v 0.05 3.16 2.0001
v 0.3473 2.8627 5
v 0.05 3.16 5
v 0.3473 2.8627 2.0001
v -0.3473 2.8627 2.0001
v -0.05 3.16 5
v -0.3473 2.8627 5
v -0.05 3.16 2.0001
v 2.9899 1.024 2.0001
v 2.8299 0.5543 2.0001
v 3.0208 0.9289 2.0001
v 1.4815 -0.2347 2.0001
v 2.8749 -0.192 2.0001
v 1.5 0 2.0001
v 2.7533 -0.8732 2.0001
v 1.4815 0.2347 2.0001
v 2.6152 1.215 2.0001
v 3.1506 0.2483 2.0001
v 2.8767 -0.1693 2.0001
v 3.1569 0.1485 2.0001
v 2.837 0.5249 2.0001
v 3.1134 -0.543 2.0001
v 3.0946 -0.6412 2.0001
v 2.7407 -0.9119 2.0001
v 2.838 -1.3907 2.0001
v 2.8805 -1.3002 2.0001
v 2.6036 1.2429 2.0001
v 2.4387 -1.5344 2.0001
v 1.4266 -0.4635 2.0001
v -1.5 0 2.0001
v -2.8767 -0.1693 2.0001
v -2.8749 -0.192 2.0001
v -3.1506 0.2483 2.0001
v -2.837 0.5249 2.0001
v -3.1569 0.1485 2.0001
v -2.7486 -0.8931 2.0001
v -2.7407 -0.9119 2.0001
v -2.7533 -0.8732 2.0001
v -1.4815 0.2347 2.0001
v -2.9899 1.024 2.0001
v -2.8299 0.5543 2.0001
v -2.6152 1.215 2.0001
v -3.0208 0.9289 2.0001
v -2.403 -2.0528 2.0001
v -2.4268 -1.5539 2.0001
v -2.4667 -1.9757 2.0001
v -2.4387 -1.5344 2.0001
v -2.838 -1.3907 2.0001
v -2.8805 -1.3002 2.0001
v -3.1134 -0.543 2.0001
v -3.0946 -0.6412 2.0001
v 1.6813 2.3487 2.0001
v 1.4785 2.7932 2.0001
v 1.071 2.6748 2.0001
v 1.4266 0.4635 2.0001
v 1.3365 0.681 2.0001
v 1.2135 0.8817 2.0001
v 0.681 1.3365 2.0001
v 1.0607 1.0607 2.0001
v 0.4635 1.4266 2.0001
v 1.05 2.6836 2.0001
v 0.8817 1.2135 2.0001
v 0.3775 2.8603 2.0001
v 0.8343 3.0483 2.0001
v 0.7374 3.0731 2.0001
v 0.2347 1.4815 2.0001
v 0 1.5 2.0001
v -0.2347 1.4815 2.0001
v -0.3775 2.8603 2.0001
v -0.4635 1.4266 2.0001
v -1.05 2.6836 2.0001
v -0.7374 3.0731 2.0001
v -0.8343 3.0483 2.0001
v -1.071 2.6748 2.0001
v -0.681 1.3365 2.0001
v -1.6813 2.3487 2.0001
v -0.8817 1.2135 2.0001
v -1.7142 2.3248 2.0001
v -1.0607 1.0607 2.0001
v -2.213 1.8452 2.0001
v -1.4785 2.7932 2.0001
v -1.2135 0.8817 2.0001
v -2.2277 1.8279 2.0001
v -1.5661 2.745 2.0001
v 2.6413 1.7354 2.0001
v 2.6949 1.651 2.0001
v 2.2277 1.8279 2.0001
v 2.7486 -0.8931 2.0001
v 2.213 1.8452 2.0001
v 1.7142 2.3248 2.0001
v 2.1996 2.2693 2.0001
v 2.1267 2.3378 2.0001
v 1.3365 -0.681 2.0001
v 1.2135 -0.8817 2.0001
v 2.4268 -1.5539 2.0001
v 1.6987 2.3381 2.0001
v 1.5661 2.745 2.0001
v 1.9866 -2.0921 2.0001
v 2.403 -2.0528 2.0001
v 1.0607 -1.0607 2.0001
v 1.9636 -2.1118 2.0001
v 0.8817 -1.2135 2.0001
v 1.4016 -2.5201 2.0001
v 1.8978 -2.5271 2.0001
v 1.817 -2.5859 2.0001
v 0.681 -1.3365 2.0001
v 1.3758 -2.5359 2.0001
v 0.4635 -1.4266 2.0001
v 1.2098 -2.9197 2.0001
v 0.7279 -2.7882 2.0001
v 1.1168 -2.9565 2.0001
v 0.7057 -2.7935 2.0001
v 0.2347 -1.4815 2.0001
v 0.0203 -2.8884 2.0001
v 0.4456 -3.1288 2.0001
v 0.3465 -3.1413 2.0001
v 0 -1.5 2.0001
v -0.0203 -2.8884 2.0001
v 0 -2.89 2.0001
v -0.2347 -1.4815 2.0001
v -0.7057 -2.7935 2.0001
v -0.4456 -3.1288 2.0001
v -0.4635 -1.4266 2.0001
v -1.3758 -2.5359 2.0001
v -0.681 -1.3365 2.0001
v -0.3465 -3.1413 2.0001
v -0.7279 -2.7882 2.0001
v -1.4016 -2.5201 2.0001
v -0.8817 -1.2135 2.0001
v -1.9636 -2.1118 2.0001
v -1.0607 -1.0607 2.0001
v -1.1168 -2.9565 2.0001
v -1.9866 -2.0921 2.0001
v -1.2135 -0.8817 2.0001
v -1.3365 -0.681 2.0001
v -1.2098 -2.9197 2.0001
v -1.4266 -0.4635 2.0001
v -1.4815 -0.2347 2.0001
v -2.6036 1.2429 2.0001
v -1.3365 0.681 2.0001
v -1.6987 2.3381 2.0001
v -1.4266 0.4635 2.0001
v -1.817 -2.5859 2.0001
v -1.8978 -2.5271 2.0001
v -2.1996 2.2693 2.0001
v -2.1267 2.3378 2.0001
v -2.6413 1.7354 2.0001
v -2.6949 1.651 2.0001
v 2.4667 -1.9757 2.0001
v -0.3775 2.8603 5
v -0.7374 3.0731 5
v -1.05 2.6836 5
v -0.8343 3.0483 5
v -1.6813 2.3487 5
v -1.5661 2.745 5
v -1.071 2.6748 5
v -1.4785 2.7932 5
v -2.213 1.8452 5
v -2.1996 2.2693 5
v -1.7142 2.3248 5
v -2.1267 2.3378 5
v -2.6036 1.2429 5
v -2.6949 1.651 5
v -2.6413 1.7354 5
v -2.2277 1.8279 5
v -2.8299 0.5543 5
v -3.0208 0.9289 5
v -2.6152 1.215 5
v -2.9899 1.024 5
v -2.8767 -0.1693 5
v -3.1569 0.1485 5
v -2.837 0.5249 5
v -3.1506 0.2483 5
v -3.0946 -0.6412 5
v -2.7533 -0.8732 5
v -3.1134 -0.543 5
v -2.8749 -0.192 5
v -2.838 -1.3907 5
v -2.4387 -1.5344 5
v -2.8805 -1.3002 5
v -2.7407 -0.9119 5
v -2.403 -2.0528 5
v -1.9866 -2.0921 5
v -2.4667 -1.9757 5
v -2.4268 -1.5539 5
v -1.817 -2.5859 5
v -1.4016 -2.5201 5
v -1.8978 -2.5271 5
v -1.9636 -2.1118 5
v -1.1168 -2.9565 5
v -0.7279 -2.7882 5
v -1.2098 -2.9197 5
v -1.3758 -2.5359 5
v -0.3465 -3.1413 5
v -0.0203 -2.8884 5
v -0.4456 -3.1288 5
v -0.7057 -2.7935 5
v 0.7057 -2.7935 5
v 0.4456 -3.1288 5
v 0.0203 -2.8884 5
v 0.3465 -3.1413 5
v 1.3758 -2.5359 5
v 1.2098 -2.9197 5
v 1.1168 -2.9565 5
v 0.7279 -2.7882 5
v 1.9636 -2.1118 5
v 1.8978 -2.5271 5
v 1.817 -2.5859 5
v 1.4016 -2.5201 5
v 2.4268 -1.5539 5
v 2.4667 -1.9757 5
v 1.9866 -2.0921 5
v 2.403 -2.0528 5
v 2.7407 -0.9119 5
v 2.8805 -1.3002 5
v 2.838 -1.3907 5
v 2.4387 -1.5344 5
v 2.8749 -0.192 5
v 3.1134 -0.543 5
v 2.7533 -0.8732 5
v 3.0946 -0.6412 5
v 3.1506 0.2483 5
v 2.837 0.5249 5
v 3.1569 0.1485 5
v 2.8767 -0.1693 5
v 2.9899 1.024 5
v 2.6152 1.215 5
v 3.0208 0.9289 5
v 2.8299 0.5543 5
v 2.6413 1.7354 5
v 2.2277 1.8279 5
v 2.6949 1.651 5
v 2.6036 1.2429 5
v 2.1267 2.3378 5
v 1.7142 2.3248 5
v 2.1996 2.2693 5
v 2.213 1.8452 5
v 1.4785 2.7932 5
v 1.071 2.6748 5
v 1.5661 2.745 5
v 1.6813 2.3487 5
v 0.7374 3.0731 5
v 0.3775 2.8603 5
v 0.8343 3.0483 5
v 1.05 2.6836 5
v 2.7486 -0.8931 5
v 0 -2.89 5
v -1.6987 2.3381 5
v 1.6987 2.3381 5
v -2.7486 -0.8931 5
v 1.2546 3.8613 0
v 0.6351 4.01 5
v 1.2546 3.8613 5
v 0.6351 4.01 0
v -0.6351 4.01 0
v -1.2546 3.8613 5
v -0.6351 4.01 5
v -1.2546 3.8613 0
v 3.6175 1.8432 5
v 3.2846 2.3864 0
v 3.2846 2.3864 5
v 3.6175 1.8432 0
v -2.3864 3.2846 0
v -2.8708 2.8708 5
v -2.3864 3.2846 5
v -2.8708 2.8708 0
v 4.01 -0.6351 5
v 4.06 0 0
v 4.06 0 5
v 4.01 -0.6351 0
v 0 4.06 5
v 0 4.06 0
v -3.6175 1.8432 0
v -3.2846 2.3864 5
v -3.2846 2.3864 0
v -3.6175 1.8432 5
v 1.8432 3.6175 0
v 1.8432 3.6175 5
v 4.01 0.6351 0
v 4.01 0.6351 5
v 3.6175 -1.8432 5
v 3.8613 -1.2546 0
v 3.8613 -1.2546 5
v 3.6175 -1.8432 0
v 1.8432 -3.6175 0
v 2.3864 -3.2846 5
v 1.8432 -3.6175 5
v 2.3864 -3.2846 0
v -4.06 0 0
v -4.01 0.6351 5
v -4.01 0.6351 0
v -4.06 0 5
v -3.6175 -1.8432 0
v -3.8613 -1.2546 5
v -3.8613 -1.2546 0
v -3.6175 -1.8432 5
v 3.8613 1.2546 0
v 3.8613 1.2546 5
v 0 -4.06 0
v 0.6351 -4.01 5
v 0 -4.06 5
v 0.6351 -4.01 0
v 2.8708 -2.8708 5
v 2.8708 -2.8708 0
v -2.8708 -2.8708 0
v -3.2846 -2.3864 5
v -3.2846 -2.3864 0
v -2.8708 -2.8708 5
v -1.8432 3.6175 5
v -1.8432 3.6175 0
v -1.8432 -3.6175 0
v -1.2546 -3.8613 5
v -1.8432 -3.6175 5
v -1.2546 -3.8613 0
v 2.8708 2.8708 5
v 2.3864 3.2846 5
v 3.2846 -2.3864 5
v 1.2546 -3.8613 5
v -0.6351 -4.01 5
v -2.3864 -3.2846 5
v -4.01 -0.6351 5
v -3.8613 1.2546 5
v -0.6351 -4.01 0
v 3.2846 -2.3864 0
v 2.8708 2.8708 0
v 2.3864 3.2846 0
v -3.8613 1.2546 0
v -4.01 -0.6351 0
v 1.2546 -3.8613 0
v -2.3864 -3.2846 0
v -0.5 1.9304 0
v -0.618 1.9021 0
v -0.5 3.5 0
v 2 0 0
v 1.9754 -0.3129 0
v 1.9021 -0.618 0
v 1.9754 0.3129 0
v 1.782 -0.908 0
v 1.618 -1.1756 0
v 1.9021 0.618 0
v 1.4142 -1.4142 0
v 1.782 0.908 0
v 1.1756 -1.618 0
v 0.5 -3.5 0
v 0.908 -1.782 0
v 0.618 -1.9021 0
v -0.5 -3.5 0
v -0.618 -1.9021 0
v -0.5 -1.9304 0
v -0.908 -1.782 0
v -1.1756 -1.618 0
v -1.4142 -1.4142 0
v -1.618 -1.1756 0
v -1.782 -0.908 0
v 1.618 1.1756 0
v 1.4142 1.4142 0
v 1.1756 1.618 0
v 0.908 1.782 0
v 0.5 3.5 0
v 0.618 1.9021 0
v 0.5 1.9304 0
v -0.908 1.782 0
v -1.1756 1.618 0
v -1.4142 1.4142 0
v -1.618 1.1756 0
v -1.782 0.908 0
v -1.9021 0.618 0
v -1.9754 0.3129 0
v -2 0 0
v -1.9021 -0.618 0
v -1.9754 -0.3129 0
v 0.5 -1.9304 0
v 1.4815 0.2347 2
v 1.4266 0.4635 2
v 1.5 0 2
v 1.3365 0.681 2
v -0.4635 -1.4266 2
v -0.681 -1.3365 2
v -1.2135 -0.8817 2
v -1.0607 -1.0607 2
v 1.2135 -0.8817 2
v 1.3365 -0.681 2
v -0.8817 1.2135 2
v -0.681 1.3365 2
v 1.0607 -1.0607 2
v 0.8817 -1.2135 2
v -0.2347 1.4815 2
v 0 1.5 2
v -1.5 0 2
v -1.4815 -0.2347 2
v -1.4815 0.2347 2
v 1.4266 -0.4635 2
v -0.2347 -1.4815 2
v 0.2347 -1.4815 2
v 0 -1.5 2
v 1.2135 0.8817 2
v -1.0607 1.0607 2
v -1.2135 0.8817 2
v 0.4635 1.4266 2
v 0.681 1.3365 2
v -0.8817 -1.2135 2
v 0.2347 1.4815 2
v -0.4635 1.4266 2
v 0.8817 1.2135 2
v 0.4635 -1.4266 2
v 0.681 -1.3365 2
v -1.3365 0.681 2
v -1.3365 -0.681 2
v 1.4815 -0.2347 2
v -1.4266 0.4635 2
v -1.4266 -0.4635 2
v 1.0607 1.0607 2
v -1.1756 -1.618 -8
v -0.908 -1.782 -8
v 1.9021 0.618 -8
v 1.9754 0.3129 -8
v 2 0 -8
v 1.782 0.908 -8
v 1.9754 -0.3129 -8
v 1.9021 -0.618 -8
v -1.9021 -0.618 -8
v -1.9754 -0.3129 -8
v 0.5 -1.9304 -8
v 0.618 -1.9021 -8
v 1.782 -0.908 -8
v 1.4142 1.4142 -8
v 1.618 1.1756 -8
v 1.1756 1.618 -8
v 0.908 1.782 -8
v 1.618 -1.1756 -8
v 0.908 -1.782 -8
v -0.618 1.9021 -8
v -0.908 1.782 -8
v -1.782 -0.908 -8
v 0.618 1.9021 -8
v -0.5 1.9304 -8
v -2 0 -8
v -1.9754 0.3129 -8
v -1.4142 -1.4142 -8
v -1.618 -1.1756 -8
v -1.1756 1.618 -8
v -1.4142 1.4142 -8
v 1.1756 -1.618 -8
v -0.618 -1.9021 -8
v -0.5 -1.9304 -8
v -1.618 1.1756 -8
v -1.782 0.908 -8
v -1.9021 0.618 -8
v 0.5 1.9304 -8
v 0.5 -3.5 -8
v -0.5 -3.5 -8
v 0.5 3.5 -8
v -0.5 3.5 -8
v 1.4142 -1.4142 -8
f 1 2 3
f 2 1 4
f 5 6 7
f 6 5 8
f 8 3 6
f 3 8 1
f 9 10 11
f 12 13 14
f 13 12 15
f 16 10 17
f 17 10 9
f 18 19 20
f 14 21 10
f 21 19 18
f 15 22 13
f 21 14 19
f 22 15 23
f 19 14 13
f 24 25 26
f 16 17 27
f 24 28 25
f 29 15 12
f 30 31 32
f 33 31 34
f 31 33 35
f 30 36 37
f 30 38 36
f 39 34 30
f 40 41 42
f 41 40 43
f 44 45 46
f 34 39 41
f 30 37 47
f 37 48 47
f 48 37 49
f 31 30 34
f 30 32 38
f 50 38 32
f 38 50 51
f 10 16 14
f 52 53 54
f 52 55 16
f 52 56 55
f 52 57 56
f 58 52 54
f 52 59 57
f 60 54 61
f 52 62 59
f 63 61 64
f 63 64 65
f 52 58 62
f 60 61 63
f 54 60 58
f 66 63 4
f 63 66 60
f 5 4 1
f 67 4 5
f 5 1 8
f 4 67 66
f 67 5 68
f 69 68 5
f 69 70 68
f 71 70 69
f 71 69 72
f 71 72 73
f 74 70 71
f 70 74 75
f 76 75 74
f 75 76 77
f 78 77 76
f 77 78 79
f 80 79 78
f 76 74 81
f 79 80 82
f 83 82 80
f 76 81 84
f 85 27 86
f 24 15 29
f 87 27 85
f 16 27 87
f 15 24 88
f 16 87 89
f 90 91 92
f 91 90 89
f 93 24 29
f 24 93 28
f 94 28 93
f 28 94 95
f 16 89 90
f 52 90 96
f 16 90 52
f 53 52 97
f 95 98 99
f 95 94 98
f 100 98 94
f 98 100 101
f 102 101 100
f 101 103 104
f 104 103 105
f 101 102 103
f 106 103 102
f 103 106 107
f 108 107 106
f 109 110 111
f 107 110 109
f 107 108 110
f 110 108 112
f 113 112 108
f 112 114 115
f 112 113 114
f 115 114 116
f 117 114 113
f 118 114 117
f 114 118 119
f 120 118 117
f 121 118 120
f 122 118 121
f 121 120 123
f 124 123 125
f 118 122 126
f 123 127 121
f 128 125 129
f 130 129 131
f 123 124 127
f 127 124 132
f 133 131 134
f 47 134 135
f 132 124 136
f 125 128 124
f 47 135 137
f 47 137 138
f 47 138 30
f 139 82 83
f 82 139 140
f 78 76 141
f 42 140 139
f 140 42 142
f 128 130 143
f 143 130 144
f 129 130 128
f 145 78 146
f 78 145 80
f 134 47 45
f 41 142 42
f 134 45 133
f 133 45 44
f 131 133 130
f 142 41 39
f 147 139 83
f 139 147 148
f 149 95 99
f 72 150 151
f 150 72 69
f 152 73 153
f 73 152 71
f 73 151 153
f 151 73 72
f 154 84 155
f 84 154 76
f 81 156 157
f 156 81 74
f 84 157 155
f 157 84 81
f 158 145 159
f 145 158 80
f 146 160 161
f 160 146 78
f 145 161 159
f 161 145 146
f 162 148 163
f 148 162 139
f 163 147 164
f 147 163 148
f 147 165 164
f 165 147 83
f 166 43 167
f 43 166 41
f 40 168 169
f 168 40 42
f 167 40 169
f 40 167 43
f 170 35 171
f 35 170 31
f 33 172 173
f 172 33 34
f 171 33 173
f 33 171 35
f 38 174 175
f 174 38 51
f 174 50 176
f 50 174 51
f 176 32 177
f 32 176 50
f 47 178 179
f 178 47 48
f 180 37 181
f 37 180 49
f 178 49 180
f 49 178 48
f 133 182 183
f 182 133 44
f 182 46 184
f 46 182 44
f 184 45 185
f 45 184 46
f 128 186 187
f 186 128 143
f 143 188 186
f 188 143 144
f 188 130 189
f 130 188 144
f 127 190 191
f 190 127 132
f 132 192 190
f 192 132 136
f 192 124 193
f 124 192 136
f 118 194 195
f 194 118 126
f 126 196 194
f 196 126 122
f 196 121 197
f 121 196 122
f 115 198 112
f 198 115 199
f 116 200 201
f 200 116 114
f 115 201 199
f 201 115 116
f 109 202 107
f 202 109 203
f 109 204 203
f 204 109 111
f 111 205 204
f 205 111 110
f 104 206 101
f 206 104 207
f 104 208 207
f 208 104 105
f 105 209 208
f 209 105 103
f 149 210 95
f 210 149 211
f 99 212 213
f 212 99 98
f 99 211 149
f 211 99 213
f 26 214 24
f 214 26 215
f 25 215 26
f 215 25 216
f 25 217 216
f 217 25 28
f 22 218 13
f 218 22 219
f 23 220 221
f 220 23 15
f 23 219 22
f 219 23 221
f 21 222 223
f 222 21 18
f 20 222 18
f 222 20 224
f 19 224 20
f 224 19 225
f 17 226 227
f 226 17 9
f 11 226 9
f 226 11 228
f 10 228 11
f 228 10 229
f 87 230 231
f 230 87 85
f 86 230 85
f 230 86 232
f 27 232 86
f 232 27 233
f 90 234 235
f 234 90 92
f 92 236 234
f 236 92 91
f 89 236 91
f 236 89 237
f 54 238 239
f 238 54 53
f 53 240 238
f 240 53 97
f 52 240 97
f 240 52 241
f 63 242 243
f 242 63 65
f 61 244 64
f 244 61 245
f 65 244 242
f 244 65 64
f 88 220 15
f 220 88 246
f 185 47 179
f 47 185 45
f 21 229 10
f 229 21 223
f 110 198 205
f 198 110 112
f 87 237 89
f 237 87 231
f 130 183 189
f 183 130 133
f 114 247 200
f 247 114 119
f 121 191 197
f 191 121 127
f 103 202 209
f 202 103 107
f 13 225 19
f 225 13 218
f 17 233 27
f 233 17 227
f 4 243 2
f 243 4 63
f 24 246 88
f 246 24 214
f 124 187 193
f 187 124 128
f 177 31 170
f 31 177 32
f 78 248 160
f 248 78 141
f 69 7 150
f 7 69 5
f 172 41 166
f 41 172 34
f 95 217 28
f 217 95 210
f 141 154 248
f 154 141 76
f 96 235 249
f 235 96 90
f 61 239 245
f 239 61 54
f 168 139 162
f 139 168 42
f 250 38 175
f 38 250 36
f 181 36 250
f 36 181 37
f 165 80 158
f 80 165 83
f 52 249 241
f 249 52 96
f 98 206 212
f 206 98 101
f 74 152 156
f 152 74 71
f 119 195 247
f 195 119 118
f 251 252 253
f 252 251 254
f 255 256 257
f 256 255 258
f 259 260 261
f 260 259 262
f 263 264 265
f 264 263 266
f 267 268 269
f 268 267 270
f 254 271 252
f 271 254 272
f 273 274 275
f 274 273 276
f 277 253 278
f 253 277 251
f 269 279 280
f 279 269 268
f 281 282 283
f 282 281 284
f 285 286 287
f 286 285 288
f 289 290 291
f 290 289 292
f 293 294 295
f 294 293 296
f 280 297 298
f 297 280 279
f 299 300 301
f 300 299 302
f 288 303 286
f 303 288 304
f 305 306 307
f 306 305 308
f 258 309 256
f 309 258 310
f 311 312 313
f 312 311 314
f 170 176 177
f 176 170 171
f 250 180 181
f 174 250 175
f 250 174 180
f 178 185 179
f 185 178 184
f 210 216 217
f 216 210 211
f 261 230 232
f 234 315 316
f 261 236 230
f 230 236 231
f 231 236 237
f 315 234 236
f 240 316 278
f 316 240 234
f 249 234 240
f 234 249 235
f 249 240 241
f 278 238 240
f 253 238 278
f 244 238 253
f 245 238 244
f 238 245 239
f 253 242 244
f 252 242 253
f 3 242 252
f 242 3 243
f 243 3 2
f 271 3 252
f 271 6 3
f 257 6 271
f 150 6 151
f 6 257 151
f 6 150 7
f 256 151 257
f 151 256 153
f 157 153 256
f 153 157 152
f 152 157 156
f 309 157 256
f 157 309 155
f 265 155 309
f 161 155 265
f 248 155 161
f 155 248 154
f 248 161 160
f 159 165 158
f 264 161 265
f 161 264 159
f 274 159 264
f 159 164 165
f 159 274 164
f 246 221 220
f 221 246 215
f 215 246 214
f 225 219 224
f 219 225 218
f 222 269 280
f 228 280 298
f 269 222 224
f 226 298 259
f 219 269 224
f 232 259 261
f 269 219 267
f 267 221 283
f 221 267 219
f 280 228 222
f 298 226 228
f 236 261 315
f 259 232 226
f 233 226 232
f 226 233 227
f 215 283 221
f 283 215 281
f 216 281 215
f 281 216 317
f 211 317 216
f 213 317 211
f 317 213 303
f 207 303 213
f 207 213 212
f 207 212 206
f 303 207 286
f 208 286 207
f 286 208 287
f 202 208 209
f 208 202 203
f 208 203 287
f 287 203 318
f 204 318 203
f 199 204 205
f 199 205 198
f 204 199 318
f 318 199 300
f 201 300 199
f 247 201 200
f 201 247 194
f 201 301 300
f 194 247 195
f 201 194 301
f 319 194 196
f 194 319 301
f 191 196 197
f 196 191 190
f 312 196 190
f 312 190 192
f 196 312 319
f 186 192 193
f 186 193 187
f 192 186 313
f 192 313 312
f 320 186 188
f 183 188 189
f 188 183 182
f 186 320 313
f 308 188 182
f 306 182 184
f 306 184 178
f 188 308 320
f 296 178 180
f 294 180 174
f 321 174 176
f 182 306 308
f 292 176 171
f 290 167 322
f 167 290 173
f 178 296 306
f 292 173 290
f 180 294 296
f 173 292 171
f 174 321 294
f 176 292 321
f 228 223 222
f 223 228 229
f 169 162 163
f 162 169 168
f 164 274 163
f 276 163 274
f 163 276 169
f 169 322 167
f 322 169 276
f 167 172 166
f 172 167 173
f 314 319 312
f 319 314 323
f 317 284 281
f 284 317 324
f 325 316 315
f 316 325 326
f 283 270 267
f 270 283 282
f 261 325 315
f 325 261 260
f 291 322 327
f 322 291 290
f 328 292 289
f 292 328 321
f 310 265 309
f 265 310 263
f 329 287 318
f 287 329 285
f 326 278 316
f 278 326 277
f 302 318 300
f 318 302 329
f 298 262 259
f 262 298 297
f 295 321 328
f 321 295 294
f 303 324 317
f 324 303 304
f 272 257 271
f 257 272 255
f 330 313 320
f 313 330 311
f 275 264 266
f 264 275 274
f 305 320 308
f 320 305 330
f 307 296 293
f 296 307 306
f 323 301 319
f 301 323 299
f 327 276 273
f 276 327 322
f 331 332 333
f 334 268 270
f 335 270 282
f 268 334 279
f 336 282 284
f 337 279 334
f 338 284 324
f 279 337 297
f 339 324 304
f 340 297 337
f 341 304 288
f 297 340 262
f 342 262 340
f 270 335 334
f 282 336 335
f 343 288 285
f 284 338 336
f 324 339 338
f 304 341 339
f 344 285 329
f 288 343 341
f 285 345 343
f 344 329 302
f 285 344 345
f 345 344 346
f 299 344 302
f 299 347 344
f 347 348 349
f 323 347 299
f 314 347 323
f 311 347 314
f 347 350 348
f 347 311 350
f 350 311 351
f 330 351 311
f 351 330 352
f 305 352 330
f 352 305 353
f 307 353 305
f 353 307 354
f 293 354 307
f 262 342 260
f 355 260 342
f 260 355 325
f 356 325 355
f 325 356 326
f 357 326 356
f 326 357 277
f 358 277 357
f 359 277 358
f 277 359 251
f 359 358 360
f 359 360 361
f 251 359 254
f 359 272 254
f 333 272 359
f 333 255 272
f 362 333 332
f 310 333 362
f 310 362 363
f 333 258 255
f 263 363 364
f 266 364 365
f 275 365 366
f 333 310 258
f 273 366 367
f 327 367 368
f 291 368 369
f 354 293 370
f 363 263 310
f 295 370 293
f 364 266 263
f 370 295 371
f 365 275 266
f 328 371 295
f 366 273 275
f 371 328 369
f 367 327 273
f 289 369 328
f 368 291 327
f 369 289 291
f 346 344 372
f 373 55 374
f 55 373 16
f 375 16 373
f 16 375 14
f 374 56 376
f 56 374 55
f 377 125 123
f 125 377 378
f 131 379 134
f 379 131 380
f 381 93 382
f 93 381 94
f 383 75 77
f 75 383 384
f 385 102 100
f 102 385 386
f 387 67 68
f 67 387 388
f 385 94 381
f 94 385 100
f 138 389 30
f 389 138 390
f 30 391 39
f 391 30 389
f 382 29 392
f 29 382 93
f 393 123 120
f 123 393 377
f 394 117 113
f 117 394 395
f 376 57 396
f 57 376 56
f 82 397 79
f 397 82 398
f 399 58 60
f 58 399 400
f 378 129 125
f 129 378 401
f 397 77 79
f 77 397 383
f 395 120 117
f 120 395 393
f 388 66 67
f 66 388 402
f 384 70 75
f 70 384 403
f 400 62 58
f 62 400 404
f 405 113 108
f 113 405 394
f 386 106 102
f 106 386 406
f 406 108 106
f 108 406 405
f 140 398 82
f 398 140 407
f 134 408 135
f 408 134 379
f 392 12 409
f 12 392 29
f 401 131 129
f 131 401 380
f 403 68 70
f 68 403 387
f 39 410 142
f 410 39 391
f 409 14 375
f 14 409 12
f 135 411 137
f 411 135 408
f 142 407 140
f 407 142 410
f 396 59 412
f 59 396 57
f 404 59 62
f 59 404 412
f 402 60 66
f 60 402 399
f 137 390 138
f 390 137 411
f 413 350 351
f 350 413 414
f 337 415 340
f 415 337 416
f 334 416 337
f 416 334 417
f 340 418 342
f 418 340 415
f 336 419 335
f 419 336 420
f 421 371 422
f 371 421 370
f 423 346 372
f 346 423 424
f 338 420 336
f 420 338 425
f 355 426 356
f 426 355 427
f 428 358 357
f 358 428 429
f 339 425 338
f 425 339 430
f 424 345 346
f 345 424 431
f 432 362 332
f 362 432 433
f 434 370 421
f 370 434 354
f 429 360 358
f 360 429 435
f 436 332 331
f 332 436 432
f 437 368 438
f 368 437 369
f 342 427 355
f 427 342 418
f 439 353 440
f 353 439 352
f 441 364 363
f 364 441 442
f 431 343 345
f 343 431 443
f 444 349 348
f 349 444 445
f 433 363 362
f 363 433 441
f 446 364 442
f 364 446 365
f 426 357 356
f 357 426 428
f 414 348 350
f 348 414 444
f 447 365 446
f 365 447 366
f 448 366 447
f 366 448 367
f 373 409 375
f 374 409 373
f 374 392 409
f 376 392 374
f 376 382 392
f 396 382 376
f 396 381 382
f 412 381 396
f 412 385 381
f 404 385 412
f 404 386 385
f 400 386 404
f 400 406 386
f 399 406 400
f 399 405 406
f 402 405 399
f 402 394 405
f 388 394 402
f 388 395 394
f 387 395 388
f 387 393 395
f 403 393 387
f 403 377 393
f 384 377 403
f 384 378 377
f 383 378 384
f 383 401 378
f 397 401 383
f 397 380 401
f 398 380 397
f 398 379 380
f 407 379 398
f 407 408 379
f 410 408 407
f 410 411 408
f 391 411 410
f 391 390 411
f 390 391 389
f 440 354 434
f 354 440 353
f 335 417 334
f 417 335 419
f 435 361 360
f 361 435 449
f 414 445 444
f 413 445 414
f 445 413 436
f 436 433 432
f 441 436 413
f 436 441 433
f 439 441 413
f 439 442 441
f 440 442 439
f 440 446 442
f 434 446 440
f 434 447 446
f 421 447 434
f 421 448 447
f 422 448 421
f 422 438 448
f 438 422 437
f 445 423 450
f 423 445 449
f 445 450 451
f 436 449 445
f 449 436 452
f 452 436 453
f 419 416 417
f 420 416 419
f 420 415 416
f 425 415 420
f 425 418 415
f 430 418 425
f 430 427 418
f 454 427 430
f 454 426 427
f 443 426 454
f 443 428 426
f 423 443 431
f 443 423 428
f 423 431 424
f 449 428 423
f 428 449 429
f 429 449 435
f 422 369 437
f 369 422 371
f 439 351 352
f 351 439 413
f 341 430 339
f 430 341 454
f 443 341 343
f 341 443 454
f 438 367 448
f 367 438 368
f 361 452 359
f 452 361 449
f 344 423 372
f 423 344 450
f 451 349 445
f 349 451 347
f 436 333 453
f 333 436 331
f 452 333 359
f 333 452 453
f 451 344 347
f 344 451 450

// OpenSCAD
/**
    Parametric servo arm generator for OpenScad

    Forked from 2012 Charles Rincheval.  All rights reserved.

    This library is free software; you can redistribute it and/or
    modify it under the terms of the GNU Lesser General Public
    License as published by the Free Software Foundation; either
    version 2.1 of the License, or (at your option) any later version.

    This library is distributed in the hope that it will be useful,
    but WITHOUT ANY WARRANTY; without even the implied warranty of
    MERCHANTABILITY or FITNESS FOR A PARTICULAR PURPOSE.  See the GNU
    Lesser General Public License for more details.

    You should have received a copy of the GNU Lesser General Public
    License along with this library; if not, write to the Free Software
    Foundation, Inc., 51 Franklin St, Fifth Floor, Boston, MA  02110-1301  USA

*/

// Which Spline would you like to see?
// spline_type = 1; // [1:"Hitec C1-24T",2:"Hitec D1-15T",3:"Futaba 1F-15",4:"Futaba 2F-21T (9g?)",5:"Futaba 3F-25T]";
// Spline Size
spline_type = 1; // [1:Hitec C1-24T, 2:Hitec D1-15T, 3:Futaba 1F-15, 4:Futaba 2F-21T (9g?), 5:Futaba 3F-25T, 6:Actobotics Horn(Hitec), 7:Actobotics Horn(Futaba), 8:Tetrix Horn(Hitec), 9:Tetrix Horn(Futaba) ]

arm_length = 20;

arm_count = 1; // [1,2,3,4,5,6,7,8]

arm_screw_diameter = 2.0;

base_thickness = 2.0;

/**
    Clear between arm head and servo head
    With PLA material, use clear : 0.3, for ABS, use 0.2
*/
SERVO_HEAD_CLEARANCE = 0.2;


$fn = 40/1;


/**
    Head / Tooth parameters
    http://https://www.servocity.com/servo-spline-info

    First array (head related) :
    0. Head external diameter  (INTERNAL OF TEETH)
    1. Head height
    2. Head thickness
    3. Head screw diameter
    4. Head Base Thickness

    Second array (tooth related) :
    0. Tooth count
    1. Tooth height
    2. Tooth length
    3. Tooth width
*/
/**
   Tooth (ON SERVO)

     |<-w->|
     |_____|___
     /     \  ^h
   _/       \_v
    |<--l-->|

   - tooth height (h)
   - tooth length (l)
   - tooth width (w)

    For a new servo: Seems to work best to first set the tooth height to zero,
     and get the outer diameter snug, then work on the teeth.

   Printed very well on Printrbot Simple Pro  0.3mm nozzle, 0.1 layer PLA

   If you need just the spline, set the arm length, and head base thickness to zero

*/
//------------------------------------------------

HITEC_D1_SPLINE = [
                    [7.6, 5.5, 1.8, 3.4, base_thickness],
                    [15, 0.7, 1.3, 0.2]
                  ];
module servo_hitec_d1(length, count) {
  servo_arm(HITEC_D1_SPLINE, [length, count]);
}
//------------------------------------------------

HITEC_C1_SPLINE = [
                    [5.6, 3.5, 1.6, 2.8, base_thickness],
                    [24, 0.4, 0.7, 0.051]
                  ];
module servo_hitec_c1(length, count) {
  servo_arm(HITEC_C1_SPLINE, [length, count]);
}
//------------------------------------------------

FUTABA_1F_SPLINE = [
                     [4.0, 3.75, 1.1, 2.3, base_thickness],
                     [15, 0.25, 0.6, 0.09]
                   ];
module servo_futaba_1f(length, count) {
    servo_arm(FUTABA_1F_SPLINE, [length, count]);
}
//------------------------------------------------

FUTABA_2F_SPLINE = [
                     [4.90, 3, 1.8, 2.3, base_thickness],
                     [21, 0.57, 0.7, 0.1]
                   ];
module servo_futaba_2f(length, count) {
  servo_arm(FUTABA_2F_SPLINE, [length, count]);
}
//------------------------------------------------

FUTABA_3F_SPLINE = [
                     [5.92, 3, 1.1, 2.5, base_thickness],
                     [25, 0.3, 0.7, 0.1]
                   ];
module servo_futaba_3f(length, count) {
  servo_arm(FUTABA_3F_SPLINE, [length, count]);
}
//------------------------------------------------


HX12K_SPLINE = [
                     [5.92, 3, 1.1, 3, base_thickness],
                     [25, 0.3, 0.7, 0.1]
                   ];
module servo_hx12k(length, count) {
  servo_arm(HX12K_SPLINE, [length, count]);
}
/**
    If you want to support a new servo, juste add a new spline definition array
    and a module named like servo_XXX_YYY where XXX is servo brand and YYY is the
    connection type (3f) or the servo type (s3003)
*/

//    Servo head

module servo_head(params, clear = SERVO_HEAD_CLEARANCE) {

  head = params[0];
  tooth = params[1];

  head_diameter = head[0];
  head_height = head[1];
  head_base = head[4];

  tooth_count = tooth[0];
  tooth_height = tooth[1];
  tooth_length = tooth[2];
  tooth_width = tooth[3];

  //     %cylinder(r = (head_diameter / 2), h = head_height + 1);

  cylinder(r = head_diameter / 2 - tooth_height + 0.03 + clear, h = head_height);

// add teeth
    for (i = [0 : tooth_count]) {
      rotate([0, 0, i * (360 / tooth_count)]) {
        translate([0, head_diameter / 2 - tooth_height + clear, 0]) {
          servo_head_tooth(tooth_length, tooth_width, tooth_height, head_height);
        }
      }
    }
  }


module servo_head_tooth(length, width, height, head_height){

  curvatureAdd = 0.05;
  linear_extrude(height = head_height) {
    polygon([[-length / 2 - curvatureAdd, -curvatureAdd], [-width / 2, height], [width / 2, height], [length / 2 + curvatureAdd, -curvatureAdd]]);  
   }
}
/**
    Servo hold
    - Head / Tooth parameters
    - Arms params (length and count)
*/
module servo_arm(params, arms) {

  head = params[0];
  tooth = params[1];

  head_diameter = head[0];
  head_height = head[1];
  head_thickness = head[2];
  head_screw_diameter = head[3];
  head_base = head[4];

  tooth_length = tooth[2];
  tooth_width = tooth[3];

  arm_length = arms[0];
  arm_count = arms[1];

  /**
      Servo arm
      - length is from center to last hole
  */
  module arm(tooth_length, tooth_width, head_height, hole_count ) {

//    arm_screw_diameter = 2;

    difference() {
      union() {
        hull() {
          cylinder(r = tooth_width / 2, h = head_base);
          translate([0, tooth_length, 0]) {
          cylinder(r = arm_screw_diameter / 2 + 1.5, h = head_base);
//          #cylinder(r = tooth_width / 3, h = head_base);
              
          } 
        }

      }

      // Hole
//      for (i = [0 : hole_count - 1]) {
        //translate([0, length - (length / hole_count * i), -1]) {
        translate([0, tooth_length , -1]) {
          cylinder(r = arm_screw_diameter / 2, h = 10);
        }
//      }

      translate([0, 0, -0.001])cylinder(r = head_screw_diameter / 2, h = 10);
    }



  }

  arm_thickness = head_thickness;

  // Arm
  difference() {   // spline hub
    union(){
      for (j = [0 : arm_count - 1]) {
        rotate([0, 0, j * (360 / arm_count)]) {
          arm(arm_length, head_diameter + arm_thickness * 2, head_height, 1);
            hull() {                  // cross support
              translate([0 , head_diameter/2, 0])
              cylinder(r = head_base / 2, h = head_base + head_height);
              translate([0 , max(arm_length - 4,0), 0])
              cylinder(r = head_base / 2, h = head_base);
            } 
         }
       }
        
       cylinder(r = head_diameter / 2 + head_thickness, h = head_height + head_base );
     }
    
     translate([0, 0, -0.001]) 
     cylinder(r = head_screw_diameter / 2, h = 10);  // hole
     translate([0, 0, head_base + 0.0001])
     servo_head(params); // teeth

  }

     if (spline_type >= 6 ){       // servo horns for actobotics,tetrix
         difference(){
              rad=13.5;
              if (spline_type >= 8) {
                  cylinder(r=11.5,h=head_base);}
              else {
                  cylinder(r=13.5,h=head_base);}
                      
                 for (j = [0 : arm_count - 1]) {
                     rotate([0, 0, j * (360 / arm_count)])
                     translate([0, arm_length , -1]) 
                     cylinder(r = 2.05 , h = 10);
//                     cylinder(r = arm_screw_diameter / 2 , h = 10);
                         }
         
         }
         }

 
}


//print_part();

module print_part() {
	if (spline_type == 1)  {
		servo_hitec_c1 (arm_length, arm_count);
	} else if (spline_type  == 2) {
		servo_hitec_d1 (arm_length, arm_count);
	} else if (spline_type  == 3)  {
		servo_futaba_1f(arm_length, arm_count);
	} else if (spline_type  == 4) {
		servo_futaba_2f(arm_length, arm_count);
	} else if (spline_type  == 5) {
		servo_futaba_3f(arm_length, arm_count);
	} else if (spline_type  == 6) {
		servo_hitec_c1 (0.770*25.4/2, 8);
	} else if (spline_type  == 7) {
		servo_futaba_3f(0.770*25.4/2, 8);
	} else if (spline_type  == 8) {
		servo_hitec_c1 (16/2, 8);
	} else if (spline_type  == 9) {
		servo_futaba_3f(16/2, 8);
	}
}
/*
translate([00,0,0]) servo_futaba_1f(10, 1);
translate([10,0,0]) servo_futaba_2f(10, 1);
translate([0,-30,0]) servo_futaba_3f(20, 4);
translate([20,0,0]) servo_hitec_c1 (30, 1);
translate([32,0,0]) servo_hitec_d1 (40, 2);
*/


servo_hx12k(0,0);
translate([0,0,-8]) cylinder(10,4/2,4/2);
translate([0,0,-3]) cube([1,7,10], center=true);
